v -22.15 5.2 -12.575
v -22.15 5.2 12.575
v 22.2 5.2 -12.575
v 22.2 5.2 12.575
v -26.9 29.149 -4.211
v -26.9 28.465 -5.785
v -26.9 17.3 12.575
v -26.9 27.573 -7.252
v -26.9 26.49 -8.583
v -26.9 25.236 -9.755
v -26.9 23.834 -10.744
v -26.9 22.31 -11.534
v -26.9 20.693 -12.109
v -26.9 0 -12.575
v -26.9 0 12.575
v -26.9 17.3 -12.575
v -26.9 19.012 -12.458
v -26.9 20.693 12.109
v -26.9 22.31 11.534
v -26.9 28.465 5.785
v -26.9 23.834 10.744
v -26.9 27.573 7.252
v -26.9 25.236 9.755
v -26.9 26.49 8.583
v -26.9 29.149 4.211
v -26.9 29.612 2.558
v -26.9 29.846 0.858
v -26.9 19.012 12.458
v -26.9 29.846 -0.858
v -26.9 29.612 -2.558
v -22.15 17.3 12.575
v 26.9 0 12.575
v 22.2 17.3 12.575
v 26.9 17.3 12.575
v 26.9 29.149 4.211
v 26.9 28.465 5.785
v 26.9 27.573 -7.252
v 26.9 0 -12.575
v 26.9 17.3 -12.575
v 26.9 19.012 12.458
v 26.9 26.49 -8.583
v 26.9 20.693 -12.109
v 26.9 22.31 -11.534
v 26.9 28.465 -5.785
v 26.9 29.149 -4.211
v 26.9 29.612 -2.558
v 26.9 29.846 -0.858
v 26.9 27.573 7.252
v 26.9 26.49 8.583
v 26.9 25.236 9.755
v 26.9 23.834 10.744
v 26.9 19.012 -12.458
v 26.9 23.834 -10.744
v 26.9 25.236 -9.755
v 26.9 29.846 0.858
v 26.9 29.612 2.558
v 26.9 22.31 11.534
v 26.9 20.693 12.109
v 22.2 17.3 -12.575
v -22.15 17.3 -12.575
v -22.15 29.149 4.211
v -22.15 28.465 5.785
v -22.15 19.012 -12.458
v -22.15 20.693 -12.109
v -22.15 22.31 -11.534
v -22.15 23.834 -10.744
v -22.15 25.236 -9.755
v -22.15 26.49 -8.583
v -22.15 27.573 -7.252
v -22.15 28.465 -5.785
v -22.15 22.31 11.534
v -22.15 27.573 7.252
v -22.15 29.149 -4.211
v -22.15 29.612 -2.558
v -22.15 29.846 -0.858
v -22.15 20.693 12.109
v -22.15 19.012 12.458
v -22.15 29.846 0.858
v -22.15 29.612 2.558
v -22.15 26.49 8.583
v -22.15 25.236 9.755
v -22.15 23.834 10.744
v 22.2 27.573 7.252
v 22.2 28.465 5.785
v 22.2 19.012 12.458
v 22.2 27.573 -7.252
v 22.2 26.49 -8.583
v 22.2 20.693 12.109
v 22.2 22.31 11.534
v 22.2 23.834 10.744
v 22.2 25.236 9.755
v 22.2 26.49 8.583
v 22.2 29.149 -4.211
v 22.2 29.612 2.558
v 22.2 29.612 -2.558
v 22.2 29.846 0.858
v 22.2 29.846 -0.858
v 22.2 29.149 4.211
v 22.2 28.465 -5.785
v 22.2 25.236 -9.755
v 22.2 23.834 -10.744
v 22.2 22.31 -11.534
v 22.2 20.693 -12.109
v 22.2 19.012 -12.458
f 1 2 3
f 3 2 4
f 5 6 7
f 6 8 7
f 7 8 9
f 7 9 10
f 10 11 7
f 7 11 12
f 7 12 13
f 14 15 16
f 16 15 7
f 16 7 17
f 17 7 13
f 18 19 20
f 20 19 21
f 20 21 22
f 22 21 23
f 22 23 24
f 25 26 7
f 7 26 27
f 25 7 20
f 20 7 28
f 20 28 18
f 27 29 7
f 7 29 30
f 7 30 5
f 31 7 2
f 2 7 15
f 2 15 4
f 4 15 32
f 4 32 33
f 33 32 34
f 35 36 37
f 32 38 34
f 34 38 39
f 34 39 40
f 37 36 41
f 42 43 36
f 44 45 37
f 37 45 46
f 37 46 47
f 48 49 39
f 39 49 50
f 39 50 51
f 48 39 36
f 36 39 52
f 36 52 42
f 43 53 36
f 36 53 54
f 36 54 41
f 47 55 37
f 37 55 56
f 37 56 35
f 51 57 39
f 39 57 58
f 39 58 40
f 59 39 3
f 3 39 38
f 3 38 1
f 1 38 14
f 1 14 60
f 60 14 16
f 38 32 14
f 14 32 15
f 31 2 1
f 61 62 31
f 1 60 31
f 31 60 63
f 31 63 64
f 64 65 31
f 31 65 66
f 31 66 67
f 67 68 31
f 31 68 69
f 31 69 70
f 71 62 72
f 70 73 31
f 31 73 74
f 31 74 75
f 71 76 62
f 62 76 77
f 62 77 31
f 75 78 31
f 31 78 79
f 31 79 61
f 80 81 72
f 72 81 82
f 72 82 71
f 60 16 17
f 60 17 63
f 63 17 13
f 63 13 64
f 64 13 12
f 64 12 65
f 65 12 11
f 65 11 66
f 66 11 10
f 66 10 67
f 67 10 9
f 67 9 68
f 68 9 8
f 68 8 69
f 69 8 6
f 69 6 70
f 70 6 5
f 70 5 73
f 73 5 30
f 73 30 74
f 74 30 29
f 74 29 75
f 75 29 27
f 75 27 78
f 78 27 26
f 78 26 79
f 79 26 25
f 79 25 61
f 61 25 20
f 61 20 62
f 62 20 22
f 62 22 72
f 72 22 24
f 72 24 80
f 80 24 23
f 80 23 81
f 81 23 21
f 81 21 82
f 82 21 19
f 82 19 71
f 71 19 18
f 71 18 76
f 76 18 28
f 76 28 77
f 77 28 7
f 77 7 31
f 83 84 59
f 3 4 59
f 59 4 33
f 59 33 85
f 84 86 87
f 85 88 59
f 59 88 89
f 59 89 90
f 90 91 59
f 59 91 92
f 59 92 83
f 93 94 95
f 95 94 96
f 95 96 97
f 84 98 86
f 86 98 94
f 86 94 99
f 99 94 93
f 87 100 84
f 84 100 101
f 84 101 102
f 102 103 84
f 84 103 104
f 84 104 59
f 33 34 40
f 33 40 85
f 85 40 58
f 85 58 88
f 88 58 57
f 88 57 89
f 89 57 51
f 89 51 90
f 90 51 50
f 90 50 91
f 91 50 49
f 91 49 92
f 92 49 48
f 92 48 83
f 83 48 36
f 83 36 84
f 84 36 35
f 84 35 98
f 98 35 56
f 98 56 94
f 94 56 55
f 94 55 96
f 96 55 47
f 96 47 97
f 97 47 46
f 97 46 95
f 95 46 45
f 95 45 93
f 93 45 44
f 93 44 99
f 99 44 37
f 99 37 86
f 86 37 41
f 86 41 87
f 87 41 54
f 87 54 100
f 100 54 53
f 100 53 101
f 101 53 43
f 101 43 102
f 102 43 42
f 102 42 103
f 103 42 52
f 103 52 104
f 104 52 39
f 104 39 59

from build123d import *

# Parameters (mm, degrees)
ESQUISSE1_W        = 53.8
ESQUISSE1_H        = 25.15
BOSS_EXTRU_1_DEPTH = 5.2
ESQUISSE2_W        = 4.75
ESQUISSE2_H        = 25.15
BOSS_EXTRU_2_DEPTH = 12.1
BOSS_EXTRU_3_START = -4.75
BOSS_EXTRU_3_DEPTH = 4.75
ESQUISSE4_W        = 4.7
ESQUISSE4_H        = 25.15
BOSS_EXTRU_4_DEPTH = 12.1
BOSS_EXTRU_5_START = -4.7
BOSS_EXTRU_5_DEPTH = 4.7


with BuildPart() as part:
    # Esquisse1 → Boss.-Extru.1 (new body)
    with BuildSketch(Plane(origin=(0, 0, 0), x_dir=(1, 0, 0), z_dir=(0, 1, 0))):
        Rectangle(ESQUISSE1_W, ESQUISSE1_H)
    extrude(amount=BOSS_EXTRU_1_DEPTH)

    # Esquisse2 → Boss.-Extru.2 (add)
    with BuildSketch(Plane(origin=(0, 5.2, 0), x_dir=(1, 0, 0), z_dir=(0, 1, 0))):
        with Locations((-24.525, 0)):
            Rectangle(ESQUISSE2_W, ESQUISSE2_H)
    extrude(amount=BOSS_EXTRU_2_DEPTH)

    # Esquisse3 → Boss.-Extru.3 (add)
    with BuildSketch(Plane.ZY.offset(26.9).offset(BOSS_EXTRU_3_START)):
        with BuildLine():
            Line((12.575, 17.3), (-12.575, 17.3))
            ThreePointArc((-12.575, 17.3), (0, 29.875), (12.575, 17.3))
        make_face()
    extrude(amount=BOSS_EXTRU_3_DEPTH)

    # Esquisse4 → Boss.-Extru.4 (add)
    with BuildSketch(Plane(origin=(0, 5.2, 0), x_dir=(1, 0, 0), z_dir=(0, 1, 0))):
        with Locations((24.55, 0)):
            Rectangle(ESQUISSE4_W, ESQUISSE4_H)
    extrude(amount=BOSS_EXTRU_4_DEPTH)

    # Esquisse5 → Boss.-Extru.5 (add)
    with BuildSketch(Plane(origin=(26.9, 0, 0), x_dir=(0, 0, -1), z_dir=(1, 0, 0)).offset(BOSS_EXTRU_5_START)):
        with BuildLine():
            Line((12.575, 17.3), (-12.575, 17.3))
            ThreePointArc((-12.575, 17.3), (0, 29.875), (12.575, 17.3))
        make_face()
    extrude(amount=BOSS_EXTRU_5_DEPTH)


solid = part.part
